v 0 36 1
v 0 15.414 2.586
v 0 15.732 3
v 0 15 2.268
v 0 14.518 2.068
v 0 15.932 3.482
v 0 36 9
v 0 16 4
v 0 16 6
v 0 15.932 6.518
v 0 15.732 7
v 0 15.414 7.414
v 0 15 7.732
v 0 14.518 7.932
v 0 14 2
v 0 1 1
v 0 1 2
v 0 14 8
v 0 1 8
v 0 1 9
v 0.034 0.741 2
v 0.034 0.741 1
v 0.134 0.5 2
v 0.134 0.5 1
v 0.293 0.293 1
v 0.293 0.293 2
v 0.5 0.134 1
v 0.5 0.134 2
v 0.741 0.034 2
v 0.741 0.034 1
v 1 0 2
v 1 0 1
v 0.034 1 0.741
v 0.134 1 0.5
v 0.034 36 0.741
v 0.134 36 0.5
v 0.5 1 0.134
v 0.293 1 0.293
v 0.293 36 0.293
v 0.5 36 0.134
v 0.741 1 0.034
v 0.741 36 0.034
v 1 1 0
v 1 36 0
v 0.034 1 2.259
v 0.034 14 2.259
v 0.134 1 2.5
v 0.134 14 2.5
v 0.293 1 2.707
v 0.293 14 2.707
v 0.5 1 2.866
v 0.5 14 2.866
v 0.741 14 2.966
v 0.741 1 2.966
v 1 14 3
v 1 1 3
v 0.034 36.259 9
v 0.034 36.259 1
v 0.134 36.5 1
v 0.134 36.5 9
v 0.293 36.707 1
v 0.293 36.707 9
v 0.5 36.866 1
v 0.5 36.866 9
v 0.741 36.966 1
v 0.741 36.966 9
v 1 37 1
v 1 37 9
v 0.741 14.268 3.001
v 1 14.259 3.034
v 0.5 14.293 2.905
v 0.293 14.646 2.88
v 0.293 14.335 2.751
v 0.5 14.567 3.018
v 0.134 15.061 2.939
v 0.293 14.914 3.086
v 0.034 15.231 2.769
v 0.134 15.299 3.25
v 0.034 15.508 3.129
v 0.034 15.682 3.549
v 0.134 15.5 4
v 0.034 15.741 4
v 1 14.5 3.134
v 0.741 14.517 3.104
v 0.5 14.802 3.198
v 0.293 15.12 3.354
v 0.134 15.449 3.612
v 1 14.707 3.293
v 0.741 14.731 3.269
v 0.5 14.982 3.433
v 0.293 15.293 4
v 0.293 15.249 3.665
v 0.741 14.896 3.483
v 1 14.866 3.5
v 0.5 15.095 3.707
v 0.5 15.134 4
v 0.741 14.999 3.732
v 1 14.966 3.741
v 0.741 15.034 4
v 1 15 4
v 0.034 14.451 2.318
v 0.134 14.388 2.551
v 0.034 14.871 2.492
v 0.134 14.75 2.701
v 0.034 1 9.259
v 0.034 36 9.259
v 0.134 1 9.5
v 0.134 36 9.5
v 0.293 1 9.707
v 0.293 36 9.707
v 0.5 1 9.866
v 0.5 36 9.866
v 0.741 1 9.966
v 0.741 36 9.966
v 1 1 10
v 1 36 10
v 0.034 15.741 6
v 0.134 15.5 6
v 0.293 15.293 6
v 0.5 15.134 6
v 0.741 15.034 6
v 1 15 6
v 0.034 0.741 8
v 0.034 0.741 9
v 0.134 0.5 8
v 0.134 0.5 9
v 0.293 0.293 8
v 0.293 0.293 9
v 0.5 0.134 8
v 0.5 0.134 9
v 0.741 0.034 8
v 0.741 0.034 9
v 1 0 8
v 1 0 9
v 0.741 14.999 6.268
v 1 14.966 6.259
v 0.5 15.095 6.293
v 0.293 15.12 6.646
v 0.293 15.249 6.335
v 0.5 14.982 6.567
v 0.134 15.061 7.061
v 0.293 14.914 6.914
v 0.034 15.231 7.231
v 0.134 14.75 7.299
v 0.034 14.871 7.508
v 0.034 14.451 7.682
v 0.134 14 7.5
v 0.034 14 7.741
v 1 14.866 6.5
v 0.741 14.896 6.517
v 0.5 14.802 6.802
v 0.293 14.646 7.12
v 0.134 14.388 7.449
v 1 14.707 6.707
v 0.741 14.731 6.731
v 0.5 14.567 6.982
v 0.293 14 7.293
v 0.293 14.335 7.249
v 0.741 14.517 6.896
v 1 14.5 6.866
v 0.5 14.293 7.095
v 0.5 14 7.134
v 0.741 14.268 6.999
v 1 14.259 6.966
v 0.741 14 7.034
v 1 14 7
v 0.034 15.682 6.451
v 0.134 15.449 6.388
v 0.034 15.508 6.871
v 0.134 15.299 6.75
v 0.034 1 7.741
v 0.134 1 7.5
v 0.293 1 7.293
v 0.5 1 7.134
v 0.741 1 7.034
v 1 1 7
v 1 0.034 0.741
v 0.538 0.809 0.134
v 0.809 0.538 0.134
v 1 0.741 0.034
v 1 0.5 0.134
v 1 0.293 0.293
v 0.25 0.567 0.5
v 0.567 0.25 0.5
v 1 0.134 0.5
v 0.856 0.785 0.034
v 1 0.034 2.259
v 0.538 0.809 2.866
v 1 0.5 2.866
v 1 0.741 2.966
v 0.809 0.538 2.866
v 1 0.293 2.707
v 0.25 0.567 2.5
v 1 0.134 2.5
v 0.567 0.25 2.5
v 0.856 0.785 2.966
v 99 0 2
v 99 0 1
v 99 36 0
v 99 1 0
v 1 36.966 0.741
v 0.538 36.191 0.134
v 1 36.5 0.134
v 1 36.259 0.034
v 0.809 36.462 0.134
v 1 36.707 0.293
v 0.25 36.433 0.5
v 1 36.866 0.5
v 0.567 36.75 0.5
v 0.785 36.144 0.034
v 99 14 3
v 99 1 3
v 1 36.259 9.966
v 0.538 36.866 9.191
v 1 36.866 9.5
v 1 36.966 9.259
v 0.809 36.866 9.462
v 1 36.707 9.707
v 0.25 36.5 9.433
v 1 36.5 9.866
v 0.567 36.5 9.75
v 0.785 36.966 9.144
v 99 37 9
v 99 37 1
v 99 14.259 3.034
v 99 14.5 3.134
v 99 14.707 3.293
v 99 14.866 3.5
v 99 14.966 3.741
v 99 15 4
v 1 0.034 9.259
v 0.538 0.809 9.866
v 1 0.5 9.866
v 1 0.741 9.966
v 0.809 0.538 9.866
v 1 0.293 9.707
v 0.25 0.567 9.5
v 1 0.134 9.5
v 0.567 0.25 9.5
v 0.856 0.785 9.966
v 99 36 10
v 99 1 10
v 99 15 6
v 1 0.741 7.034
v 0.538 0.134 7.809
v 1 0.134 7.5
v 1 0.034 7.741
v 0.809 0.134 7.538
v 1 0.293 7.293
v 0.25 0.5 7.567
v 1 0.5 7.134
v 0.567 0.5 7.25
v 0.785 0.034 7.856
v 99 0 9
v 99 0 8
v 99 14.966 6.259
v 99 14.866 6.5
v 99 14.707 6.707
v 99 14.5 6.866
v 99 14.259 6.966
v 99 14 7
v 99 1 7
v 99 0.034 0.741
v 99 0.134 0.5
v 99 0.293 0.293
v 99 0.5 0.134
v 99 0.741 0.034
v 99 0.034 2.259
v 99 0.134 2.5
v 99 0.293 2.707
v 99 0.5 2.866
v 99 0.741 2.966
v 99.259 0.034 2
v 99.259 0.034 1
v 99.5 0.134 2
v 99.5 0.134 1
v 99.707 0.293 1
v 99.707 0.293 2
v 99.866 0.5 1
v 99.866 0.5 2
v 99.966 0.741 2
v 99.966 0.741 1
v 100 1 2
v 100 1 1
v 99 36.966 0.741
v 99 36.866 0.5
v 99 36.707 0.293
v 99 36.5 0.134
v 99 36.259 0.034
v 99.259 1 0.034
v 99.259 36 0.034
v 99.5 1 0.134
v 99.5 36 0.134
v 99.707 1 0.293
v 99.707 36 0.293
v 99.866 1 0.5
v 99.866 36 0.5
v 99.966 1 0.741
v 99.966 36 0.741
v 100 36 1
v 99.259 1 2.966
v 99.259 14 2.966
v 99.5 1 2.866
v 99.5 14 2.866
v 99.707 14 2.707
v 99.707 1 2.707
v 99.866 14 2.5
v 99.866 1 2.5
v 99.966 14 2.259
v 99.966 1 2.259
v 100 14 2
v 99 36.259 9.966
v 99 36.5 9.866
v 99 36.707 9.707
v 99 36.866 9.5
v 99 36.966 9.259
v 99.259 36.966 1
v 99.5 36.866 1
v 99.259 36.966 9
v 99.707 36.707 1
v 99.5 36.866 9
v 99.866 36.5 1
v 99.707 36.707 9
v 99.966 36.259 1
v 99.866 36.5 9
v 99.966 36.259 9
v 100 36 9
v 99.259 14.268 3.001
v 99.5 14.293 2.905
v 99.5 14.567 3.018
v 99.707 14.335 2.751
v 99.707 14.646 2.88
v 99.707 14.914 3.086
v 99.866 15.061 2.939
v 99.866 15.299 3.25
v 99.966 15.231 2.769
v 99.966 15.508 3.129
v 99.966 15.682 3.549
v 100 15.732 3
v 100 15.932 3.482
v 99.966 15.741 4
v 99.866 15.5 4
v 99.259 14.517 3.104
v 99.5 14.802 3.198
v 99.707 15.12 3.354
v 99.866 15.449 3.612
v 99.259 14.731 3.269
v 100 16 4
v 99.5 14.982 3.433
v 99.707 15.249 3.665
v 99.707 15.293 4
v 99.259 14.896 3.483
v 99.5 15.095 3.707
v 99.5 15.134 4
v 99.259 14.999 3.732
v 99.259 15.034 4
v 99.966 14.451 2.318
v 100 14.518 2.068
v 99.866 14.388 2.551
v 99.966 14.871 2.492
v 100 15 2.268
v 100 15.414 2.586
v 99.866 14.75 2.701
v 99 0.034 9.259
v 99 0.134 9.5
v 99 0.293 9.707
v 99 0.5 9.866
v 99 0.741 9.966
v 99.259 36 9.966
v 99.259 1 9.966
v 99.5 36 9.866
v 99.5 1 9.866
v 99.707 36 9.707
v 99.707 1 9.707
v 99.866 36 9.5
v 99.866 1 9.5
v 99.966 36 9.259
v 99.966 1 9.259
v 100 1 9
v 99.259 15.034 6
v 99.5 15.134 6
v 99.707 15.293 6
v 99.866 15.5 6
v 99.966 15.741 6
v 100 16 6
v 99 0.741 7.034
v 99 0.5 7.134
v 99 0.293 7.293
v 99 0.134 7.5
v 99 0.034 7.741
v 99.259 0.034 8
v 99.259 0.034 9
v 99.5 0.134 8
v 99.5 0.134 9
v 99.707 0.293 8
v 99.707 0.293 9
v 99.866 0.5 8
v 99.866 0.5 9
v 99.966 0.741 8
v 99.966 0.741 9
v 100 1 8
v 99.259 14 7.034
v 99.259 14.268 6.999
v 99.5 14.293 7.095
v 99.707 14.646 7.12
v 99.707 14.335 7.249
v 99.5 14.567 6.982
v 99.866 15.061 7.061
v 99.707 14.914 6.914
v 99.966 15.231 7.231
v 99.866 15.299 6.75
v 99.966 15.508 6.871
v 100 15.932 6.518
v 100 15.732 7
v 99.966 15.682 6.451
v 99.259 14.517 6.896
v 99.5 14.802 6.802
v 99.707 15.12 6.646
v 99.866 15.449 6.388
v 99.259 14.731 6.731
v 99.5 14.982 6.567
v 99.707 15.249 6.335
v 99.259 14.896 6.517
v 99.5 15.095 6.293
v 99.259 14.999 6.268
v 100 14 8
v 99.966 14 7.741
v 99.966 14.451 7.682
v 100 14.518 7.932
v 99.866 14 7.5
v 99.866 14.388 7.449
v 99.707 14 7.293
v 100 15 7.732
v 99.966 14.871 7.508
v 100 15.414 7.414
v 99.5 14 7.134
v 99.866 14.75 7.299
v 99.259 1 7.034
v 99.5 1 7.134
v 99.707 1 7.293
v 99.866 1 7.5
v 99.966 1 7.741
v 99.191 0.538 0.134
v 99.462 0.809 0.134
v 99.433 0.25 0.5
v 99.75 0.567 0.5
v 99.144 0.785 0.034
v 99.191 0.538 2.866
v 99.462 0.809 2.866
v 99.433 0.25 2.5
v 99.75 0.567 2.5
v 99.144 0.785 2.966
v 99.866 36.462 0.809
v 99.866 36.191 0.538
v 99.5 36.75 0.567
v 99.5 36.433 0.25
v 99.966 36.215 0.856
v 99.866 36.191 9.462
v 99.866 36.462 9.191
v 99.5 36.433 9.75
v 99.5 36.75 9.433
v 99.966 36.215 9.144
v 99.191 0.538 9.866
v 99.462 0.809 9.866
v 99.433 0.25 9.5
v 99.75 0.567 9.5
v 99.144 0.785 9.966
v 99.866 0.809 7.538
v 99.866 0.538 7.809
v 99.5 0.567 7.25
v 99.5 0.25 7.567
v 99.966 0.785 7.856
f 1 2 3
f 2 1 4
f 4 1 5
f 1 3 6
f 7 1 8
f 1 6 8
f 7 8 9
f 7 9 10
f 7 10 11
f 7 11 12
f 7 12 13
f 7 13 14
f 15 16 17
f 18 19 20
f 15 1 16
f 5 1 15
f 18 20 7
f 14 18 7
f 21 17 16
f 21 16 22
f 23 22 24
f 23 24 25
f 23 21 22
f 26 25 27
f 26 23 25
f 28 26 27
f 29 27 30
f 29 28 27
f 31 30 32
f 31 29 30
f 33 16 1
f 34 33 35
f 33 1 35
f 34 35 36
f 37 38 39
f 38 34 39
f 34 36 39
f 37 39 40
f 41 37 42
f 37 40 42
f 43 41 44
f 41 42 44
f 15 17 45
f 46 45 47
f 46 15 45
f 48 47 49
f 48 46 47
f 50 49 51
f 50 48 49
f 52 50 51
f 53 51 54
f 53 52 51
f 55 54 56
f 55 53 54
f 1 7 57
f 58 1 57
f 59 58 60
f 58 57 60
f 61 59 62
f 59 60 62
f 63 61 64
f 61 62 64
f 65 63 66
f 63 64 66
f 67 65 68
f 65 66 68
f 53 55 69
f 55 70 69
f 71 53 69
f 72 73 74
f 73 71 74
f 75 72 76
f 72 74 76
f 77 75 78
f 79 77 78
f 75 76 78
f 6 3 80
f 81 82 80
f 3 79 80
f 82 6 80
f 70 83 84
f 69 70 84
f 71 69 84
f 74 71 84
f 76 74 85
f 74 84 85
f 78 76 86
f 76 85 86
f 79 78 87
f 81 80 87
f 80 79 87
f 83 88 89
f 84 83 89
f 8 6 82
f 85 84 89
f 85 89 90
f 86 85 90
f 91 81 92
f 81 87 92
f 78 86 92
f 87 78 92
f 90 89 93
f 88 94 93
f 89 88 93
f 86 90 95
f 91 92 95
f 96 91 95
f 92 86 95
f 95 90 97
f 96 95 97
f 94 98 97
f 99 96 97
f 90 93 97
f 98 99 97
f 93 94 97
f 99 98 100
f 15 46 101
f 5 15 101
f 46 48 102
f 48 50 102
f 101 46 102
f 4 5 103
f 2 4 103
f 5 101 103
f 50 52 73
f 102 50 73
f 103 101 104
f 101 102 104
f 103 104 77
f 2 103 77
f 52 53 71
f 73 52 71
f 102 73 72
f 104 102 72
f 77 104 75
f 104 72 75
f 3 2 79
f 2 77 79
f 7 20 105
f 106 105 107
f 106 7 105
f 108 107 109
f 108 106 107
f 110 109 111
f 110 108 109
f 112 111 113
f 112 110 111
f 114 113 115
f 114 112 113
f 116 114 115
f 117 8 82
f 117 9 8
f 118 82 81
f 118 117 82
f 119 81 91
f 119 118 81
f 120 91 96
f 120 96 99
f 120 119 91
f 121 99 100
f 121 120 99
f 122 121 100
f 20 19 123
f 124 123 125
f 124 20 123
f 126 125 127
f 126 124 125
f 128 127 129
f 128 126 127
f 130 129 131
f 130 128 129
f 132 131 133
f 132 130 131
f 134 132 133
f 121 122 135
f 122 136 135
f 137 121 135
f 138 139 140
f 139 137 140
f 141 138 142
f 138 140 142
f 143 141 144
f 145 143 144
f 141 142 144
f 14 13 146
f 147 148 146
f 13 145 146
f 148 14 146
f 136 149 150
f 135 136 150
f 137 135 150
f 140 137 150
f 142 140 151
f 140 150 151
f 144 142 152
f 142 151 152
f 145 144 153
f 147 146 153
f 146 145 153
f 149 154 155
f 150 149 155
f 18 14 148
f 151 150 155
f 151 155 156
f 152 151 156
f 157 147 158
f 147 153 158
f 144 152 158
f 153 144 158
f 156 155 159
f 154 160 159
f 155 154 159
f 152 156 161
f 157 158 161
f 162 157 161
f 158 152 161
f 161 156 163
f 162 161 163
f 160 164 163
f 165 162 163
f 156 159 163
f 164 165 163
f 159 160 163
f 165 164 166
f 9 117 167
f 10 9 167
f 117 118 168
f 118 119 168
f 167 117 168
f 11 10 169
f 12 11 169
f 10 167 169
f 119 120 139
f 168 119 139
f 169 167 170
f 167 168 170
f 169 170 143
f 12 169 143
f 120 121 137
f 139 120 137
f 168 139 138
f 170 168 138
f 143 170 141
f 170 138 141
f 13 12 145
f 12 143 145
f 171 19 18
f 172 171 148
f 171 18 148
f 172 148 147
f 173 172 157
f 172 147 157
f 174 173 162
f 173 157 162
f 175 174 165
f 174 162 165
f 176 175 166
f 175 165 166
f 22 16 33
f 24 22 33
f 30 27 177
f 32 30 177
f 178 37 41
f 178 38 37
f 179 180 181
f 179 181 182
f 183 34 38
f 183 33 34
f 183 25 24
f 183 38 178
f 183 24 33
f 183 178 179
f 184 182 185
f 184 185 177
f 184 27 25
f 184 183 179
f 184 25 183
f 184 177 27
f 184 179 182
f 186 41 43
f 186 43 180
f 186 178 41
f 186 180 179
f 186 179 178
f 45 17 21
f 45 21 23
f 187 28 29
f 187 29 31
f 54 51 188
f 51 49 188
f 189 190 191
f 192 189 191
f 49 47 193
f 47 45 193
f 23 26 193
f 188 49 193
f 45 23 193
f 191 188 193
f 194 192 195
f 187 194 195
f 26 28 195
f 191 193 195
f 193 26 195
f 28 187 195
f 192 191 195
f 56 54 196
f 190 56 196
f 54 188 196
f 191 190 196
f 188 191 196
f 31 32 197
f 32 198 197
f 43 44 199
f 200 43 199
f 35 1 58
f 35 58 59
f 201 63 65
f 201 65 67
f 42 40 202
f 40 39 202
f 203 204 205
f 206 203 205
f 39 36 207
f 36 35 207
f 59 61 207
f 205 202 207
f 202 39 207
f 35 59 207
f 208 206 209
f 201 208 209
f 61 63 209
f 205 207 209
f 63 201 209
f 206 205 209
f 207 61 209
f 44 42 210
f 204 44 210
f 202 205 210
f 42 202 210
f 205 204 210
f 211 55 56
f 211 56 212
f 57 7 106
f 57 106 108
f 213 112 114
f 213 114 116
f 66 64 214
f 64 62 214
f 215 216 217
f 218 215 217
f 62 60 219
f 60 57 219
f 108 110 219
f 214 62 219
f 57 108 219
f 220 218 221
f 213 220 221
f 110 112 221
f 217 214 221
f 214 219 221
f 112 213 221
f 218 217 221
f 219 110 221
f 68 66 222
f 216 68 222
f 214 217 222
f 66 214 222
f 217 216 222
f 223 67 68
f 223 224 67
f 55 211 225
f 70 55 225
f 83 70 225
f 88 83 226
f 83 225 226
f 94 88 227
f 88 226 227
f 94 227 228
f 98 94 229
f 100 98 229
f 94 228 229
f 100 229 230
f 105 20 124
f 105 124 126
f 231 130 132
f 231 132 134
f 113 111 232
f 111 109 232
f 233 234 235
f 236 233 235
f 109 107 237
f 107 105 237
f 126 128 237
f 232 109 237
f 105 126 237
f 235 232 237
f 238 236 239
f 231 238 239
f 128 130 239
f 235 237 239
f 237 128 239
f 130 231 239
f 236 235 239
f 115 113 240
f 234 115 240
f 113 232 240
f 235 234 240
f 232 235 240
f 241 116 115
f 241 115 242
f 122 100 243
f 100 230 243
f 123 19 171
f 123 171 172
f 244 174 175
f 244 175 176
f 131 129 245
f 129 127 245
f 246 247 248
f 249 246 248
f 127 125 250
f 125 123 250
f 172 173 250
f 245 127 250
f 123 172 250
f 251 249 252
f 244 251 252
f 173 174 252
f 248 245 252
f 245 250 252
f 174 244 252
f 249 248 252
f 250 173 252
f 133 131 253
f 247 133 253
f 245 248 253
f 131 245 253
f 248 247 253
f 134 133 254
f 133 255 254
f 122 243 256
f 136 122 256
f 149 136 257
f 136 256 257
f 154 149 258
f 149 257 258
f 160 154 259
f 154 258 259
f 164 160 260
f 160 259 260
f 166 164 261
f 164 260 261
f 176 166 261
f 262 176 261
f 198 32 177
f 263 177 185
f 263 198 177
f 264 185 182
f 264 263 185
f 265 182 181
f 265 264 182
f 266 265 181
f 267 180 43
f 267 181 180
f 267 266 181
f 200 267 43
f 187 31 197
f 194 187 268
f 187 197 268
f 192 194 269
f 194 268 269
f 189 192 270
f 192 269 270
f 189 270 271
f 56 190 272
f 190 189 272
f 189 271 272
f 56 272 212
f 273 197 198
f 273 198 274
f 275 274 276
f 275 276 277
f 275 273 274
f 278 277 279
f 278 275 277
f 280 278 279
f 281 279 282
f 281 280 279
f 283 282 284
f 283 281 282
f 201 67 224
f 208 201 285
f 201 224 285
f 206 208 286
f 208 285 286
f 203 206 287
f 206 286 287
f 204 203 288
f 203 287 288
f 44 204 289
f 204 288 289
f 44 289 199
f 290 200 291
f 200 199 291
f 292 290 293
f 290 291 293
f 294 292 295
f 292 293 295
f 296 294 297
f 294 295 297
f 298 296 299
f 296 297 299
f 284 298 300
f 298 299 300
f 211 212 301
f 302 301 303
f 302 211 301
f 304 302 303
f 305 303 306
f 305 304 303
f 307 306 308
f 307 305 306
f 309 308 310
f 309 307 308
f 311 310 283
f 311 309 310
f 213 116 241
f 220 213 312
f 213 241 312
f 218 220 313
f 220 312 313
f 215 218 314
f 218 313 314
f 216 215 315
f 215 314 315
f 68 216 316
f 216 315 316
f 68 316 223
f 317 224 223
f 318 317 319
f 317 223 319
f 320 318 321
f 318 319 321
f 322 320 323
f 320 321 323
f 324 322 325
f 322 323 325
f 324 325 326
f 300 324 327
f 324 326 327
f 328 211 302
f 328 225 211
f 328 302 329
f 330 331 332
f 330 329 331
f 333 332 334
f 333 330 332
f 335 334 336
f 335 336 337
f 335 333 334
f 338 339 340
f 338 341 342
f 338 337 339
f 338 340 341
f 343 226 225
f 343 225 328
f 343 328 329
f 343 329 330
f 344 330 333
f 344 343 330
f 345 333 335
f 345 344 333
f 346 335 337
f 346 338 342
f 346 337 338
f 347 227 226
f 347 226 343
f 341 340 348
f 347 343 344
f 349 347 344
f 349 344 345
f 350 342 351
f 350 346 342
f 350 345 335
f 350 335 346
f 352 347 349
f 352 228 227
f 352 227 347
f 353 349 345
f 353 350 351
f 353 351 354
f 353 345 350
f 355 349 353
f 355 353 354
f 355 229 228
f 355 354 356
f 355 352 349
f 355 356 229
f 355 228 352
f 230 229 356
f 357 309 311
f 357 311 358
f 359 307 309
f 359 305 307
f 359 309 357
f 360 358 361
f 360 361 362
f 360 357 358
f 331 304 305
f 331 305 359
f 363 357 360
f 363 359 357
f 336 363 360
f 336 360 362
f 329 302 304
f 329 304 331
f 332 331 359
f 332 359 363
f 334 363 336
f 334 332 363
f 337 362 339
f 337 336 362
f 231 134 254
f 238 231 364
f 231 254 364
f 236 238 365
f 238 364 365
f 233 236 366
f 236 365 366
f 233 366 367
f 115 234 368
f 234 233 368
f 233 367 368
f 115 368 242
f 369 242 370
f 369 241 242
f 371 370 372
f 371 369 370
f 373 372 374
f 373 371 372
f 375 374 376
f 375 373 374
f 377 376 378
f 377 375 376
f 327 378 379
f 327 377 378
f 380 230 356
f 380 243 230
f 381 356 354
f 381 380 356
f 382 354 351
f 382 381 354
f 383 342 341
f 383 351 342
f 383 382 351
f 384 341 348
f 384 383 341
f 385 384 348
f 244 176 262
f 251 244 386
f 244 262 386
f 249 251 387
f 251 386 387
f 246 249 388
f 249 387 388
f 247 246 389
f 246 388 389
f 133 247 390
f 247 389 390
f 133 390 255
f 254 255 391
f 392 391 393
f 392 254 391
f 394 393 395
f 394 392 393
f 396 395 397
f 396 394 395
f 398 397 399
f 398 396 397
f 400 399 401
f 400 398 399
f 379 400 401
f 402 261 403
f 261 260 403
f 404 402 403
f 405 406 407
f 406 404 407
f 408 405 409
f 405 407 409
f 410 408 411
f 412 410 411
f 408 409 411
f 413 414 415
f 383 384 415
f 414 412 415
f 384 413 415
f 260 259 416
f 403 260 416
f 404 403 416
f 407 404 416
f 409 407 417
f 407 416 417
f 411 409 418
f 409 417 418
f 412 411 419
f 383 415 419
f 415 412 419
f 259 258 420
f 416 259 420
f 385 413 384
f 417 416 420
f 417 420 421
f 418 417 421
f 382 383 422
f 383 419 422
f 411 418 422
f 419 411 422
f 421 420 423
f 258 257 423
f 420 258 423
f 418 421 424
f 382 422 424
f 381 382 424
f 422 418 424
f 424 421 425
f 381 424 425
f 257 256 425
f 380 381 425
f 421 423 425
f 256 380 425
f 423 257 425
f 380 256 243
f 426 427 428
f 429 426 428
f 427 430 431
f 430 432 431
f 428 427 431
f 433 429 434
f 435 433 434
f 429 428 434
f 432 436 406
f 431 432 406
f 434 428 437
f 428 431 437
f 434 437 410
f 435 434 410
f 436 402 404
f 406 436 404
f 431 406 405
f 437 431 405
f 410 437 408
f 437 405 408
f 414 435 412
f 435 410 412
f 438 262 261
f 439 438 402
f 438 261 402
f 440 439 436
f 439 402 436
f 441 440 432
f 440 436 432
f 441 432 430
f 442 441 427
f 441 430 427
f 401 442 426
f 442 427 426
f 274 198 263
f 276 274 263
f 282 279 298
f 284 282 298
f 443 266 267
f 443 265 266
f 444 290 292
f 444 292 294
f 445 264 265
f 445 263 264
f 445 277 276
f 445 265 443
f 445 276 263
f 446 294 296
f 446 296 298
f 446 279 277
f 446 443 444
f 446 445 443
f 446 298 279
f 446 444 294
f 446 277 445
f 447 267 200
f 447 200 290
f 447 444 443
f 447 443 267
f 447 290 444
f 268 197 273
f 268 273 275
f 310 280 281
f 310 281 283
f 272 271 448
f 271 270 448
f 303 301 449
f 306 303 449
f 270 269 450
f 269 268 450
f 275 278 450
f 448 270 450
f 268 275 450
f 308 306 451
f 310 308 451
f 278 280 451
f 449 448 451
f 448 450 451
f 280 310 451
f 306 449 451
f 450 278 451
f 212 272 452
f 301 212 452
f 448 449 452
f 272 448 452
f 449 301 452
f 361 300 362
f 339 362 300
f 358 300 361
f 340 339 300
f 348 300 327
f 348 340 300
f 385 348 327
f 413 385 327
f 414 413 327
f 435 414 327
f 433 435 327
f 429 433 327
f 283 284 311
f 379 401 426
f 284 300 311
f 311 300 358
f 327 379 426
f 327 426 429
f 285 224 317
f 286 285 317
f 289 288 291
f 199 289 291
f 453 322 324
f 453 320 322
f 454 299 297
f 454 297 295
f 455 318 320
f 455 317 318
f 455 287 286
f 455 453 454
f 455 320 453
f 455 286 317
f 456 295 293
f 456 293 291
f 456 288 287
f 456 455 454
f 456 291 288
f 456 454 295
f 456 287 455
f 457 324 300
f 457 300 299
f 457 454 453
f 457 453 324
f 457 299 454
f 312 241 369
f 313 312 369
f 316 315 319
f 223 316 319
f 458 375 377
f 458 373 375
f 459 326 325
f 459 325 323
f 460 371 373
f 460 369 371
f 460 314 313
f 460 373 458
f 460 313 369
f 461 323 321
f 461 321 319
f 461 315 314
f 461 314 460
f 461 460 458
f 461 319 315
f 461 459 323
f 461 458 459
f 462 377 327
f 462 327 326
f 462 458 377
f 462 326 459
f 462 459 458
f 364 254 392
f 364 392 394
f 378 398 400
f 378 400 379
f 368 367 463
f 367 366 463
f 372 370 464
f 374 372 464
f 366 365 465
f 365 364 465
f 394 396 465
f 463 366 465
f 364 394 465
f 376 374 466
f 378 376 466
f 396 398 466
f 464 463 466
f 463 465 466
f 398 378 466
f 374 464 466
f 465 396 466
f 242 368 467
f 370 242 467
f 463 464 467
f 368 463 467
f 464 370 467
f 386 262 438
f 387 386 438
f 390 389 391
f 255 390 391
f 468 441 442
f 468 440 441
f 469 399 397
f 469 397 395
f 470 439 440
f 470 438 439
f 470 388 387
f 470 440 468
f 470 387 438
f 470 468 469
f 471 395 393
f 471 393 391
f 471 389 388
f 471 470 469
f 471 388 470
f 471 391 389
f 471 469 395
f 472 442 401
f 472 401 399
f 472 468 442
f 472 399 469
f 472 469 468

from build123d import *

# Parameters (mm, degrees)
BOX001_W     = 100
BOX001_H     = 15
BOX001_DEPTH = 4
BOX_W        = 100
BOX_H        = 37
BOX_DEPTH    = 10
FILLET_R     = 1


with BuildPart() as cutter:
    # Box001 → Box001 (new body)
    with BuildSketch(Plane.XY.offset(3)):
        with Locations((50, 7.5)):
            Rectangle(BOX001_W, BOX001_H)
    extrude(amount=BOX001_DEPTH)


with BuildPart() as fillet_body:
    # Box → Box (new body)
    with BuildSketch(Plane.XY):
        with Locations((50, 18.5)):
            Rectangle(BOX_W, BOX_H)
    extrude(amount=BOX_DEPTH)

    # Cut: cut Cutter
    add(cutter.part, mode=Mode.SUBTRACT)

    # Fillet
    fillet_edges = [fillet_body.edges().sort_by_distance(p)[0] for p in [
        (0, 0, 1.5),
        (0, 7.5, 3),
        (0, 15, 5),
        (0, 7.5, 7),
        (0, 0, 8.5),
        (0, 18.5, 10),
        (0, 37, 5),
        (0, 18.5, 0),
        (100, 0, 1.5),
        (50, 0, 3),
        (50, 0, 0),
        (50, 15, 3),
        (100, 7.5, 3),
        (100, 15, 5),
        (50, 15, 7),
        (50, 0, 7),
        (100, 7.5, 7),
        (100, 0, 8.5),
        (50, 0, 10),
        (50, 37, 10),
        (100, 18.5, 10),
        (50, 37, 0),
        (100, 37, 5),
        (100, 18.5, 0),
    ]]
    fillet(fillet_edges, radius=FILLET_R)


solid = fillet_body.part
